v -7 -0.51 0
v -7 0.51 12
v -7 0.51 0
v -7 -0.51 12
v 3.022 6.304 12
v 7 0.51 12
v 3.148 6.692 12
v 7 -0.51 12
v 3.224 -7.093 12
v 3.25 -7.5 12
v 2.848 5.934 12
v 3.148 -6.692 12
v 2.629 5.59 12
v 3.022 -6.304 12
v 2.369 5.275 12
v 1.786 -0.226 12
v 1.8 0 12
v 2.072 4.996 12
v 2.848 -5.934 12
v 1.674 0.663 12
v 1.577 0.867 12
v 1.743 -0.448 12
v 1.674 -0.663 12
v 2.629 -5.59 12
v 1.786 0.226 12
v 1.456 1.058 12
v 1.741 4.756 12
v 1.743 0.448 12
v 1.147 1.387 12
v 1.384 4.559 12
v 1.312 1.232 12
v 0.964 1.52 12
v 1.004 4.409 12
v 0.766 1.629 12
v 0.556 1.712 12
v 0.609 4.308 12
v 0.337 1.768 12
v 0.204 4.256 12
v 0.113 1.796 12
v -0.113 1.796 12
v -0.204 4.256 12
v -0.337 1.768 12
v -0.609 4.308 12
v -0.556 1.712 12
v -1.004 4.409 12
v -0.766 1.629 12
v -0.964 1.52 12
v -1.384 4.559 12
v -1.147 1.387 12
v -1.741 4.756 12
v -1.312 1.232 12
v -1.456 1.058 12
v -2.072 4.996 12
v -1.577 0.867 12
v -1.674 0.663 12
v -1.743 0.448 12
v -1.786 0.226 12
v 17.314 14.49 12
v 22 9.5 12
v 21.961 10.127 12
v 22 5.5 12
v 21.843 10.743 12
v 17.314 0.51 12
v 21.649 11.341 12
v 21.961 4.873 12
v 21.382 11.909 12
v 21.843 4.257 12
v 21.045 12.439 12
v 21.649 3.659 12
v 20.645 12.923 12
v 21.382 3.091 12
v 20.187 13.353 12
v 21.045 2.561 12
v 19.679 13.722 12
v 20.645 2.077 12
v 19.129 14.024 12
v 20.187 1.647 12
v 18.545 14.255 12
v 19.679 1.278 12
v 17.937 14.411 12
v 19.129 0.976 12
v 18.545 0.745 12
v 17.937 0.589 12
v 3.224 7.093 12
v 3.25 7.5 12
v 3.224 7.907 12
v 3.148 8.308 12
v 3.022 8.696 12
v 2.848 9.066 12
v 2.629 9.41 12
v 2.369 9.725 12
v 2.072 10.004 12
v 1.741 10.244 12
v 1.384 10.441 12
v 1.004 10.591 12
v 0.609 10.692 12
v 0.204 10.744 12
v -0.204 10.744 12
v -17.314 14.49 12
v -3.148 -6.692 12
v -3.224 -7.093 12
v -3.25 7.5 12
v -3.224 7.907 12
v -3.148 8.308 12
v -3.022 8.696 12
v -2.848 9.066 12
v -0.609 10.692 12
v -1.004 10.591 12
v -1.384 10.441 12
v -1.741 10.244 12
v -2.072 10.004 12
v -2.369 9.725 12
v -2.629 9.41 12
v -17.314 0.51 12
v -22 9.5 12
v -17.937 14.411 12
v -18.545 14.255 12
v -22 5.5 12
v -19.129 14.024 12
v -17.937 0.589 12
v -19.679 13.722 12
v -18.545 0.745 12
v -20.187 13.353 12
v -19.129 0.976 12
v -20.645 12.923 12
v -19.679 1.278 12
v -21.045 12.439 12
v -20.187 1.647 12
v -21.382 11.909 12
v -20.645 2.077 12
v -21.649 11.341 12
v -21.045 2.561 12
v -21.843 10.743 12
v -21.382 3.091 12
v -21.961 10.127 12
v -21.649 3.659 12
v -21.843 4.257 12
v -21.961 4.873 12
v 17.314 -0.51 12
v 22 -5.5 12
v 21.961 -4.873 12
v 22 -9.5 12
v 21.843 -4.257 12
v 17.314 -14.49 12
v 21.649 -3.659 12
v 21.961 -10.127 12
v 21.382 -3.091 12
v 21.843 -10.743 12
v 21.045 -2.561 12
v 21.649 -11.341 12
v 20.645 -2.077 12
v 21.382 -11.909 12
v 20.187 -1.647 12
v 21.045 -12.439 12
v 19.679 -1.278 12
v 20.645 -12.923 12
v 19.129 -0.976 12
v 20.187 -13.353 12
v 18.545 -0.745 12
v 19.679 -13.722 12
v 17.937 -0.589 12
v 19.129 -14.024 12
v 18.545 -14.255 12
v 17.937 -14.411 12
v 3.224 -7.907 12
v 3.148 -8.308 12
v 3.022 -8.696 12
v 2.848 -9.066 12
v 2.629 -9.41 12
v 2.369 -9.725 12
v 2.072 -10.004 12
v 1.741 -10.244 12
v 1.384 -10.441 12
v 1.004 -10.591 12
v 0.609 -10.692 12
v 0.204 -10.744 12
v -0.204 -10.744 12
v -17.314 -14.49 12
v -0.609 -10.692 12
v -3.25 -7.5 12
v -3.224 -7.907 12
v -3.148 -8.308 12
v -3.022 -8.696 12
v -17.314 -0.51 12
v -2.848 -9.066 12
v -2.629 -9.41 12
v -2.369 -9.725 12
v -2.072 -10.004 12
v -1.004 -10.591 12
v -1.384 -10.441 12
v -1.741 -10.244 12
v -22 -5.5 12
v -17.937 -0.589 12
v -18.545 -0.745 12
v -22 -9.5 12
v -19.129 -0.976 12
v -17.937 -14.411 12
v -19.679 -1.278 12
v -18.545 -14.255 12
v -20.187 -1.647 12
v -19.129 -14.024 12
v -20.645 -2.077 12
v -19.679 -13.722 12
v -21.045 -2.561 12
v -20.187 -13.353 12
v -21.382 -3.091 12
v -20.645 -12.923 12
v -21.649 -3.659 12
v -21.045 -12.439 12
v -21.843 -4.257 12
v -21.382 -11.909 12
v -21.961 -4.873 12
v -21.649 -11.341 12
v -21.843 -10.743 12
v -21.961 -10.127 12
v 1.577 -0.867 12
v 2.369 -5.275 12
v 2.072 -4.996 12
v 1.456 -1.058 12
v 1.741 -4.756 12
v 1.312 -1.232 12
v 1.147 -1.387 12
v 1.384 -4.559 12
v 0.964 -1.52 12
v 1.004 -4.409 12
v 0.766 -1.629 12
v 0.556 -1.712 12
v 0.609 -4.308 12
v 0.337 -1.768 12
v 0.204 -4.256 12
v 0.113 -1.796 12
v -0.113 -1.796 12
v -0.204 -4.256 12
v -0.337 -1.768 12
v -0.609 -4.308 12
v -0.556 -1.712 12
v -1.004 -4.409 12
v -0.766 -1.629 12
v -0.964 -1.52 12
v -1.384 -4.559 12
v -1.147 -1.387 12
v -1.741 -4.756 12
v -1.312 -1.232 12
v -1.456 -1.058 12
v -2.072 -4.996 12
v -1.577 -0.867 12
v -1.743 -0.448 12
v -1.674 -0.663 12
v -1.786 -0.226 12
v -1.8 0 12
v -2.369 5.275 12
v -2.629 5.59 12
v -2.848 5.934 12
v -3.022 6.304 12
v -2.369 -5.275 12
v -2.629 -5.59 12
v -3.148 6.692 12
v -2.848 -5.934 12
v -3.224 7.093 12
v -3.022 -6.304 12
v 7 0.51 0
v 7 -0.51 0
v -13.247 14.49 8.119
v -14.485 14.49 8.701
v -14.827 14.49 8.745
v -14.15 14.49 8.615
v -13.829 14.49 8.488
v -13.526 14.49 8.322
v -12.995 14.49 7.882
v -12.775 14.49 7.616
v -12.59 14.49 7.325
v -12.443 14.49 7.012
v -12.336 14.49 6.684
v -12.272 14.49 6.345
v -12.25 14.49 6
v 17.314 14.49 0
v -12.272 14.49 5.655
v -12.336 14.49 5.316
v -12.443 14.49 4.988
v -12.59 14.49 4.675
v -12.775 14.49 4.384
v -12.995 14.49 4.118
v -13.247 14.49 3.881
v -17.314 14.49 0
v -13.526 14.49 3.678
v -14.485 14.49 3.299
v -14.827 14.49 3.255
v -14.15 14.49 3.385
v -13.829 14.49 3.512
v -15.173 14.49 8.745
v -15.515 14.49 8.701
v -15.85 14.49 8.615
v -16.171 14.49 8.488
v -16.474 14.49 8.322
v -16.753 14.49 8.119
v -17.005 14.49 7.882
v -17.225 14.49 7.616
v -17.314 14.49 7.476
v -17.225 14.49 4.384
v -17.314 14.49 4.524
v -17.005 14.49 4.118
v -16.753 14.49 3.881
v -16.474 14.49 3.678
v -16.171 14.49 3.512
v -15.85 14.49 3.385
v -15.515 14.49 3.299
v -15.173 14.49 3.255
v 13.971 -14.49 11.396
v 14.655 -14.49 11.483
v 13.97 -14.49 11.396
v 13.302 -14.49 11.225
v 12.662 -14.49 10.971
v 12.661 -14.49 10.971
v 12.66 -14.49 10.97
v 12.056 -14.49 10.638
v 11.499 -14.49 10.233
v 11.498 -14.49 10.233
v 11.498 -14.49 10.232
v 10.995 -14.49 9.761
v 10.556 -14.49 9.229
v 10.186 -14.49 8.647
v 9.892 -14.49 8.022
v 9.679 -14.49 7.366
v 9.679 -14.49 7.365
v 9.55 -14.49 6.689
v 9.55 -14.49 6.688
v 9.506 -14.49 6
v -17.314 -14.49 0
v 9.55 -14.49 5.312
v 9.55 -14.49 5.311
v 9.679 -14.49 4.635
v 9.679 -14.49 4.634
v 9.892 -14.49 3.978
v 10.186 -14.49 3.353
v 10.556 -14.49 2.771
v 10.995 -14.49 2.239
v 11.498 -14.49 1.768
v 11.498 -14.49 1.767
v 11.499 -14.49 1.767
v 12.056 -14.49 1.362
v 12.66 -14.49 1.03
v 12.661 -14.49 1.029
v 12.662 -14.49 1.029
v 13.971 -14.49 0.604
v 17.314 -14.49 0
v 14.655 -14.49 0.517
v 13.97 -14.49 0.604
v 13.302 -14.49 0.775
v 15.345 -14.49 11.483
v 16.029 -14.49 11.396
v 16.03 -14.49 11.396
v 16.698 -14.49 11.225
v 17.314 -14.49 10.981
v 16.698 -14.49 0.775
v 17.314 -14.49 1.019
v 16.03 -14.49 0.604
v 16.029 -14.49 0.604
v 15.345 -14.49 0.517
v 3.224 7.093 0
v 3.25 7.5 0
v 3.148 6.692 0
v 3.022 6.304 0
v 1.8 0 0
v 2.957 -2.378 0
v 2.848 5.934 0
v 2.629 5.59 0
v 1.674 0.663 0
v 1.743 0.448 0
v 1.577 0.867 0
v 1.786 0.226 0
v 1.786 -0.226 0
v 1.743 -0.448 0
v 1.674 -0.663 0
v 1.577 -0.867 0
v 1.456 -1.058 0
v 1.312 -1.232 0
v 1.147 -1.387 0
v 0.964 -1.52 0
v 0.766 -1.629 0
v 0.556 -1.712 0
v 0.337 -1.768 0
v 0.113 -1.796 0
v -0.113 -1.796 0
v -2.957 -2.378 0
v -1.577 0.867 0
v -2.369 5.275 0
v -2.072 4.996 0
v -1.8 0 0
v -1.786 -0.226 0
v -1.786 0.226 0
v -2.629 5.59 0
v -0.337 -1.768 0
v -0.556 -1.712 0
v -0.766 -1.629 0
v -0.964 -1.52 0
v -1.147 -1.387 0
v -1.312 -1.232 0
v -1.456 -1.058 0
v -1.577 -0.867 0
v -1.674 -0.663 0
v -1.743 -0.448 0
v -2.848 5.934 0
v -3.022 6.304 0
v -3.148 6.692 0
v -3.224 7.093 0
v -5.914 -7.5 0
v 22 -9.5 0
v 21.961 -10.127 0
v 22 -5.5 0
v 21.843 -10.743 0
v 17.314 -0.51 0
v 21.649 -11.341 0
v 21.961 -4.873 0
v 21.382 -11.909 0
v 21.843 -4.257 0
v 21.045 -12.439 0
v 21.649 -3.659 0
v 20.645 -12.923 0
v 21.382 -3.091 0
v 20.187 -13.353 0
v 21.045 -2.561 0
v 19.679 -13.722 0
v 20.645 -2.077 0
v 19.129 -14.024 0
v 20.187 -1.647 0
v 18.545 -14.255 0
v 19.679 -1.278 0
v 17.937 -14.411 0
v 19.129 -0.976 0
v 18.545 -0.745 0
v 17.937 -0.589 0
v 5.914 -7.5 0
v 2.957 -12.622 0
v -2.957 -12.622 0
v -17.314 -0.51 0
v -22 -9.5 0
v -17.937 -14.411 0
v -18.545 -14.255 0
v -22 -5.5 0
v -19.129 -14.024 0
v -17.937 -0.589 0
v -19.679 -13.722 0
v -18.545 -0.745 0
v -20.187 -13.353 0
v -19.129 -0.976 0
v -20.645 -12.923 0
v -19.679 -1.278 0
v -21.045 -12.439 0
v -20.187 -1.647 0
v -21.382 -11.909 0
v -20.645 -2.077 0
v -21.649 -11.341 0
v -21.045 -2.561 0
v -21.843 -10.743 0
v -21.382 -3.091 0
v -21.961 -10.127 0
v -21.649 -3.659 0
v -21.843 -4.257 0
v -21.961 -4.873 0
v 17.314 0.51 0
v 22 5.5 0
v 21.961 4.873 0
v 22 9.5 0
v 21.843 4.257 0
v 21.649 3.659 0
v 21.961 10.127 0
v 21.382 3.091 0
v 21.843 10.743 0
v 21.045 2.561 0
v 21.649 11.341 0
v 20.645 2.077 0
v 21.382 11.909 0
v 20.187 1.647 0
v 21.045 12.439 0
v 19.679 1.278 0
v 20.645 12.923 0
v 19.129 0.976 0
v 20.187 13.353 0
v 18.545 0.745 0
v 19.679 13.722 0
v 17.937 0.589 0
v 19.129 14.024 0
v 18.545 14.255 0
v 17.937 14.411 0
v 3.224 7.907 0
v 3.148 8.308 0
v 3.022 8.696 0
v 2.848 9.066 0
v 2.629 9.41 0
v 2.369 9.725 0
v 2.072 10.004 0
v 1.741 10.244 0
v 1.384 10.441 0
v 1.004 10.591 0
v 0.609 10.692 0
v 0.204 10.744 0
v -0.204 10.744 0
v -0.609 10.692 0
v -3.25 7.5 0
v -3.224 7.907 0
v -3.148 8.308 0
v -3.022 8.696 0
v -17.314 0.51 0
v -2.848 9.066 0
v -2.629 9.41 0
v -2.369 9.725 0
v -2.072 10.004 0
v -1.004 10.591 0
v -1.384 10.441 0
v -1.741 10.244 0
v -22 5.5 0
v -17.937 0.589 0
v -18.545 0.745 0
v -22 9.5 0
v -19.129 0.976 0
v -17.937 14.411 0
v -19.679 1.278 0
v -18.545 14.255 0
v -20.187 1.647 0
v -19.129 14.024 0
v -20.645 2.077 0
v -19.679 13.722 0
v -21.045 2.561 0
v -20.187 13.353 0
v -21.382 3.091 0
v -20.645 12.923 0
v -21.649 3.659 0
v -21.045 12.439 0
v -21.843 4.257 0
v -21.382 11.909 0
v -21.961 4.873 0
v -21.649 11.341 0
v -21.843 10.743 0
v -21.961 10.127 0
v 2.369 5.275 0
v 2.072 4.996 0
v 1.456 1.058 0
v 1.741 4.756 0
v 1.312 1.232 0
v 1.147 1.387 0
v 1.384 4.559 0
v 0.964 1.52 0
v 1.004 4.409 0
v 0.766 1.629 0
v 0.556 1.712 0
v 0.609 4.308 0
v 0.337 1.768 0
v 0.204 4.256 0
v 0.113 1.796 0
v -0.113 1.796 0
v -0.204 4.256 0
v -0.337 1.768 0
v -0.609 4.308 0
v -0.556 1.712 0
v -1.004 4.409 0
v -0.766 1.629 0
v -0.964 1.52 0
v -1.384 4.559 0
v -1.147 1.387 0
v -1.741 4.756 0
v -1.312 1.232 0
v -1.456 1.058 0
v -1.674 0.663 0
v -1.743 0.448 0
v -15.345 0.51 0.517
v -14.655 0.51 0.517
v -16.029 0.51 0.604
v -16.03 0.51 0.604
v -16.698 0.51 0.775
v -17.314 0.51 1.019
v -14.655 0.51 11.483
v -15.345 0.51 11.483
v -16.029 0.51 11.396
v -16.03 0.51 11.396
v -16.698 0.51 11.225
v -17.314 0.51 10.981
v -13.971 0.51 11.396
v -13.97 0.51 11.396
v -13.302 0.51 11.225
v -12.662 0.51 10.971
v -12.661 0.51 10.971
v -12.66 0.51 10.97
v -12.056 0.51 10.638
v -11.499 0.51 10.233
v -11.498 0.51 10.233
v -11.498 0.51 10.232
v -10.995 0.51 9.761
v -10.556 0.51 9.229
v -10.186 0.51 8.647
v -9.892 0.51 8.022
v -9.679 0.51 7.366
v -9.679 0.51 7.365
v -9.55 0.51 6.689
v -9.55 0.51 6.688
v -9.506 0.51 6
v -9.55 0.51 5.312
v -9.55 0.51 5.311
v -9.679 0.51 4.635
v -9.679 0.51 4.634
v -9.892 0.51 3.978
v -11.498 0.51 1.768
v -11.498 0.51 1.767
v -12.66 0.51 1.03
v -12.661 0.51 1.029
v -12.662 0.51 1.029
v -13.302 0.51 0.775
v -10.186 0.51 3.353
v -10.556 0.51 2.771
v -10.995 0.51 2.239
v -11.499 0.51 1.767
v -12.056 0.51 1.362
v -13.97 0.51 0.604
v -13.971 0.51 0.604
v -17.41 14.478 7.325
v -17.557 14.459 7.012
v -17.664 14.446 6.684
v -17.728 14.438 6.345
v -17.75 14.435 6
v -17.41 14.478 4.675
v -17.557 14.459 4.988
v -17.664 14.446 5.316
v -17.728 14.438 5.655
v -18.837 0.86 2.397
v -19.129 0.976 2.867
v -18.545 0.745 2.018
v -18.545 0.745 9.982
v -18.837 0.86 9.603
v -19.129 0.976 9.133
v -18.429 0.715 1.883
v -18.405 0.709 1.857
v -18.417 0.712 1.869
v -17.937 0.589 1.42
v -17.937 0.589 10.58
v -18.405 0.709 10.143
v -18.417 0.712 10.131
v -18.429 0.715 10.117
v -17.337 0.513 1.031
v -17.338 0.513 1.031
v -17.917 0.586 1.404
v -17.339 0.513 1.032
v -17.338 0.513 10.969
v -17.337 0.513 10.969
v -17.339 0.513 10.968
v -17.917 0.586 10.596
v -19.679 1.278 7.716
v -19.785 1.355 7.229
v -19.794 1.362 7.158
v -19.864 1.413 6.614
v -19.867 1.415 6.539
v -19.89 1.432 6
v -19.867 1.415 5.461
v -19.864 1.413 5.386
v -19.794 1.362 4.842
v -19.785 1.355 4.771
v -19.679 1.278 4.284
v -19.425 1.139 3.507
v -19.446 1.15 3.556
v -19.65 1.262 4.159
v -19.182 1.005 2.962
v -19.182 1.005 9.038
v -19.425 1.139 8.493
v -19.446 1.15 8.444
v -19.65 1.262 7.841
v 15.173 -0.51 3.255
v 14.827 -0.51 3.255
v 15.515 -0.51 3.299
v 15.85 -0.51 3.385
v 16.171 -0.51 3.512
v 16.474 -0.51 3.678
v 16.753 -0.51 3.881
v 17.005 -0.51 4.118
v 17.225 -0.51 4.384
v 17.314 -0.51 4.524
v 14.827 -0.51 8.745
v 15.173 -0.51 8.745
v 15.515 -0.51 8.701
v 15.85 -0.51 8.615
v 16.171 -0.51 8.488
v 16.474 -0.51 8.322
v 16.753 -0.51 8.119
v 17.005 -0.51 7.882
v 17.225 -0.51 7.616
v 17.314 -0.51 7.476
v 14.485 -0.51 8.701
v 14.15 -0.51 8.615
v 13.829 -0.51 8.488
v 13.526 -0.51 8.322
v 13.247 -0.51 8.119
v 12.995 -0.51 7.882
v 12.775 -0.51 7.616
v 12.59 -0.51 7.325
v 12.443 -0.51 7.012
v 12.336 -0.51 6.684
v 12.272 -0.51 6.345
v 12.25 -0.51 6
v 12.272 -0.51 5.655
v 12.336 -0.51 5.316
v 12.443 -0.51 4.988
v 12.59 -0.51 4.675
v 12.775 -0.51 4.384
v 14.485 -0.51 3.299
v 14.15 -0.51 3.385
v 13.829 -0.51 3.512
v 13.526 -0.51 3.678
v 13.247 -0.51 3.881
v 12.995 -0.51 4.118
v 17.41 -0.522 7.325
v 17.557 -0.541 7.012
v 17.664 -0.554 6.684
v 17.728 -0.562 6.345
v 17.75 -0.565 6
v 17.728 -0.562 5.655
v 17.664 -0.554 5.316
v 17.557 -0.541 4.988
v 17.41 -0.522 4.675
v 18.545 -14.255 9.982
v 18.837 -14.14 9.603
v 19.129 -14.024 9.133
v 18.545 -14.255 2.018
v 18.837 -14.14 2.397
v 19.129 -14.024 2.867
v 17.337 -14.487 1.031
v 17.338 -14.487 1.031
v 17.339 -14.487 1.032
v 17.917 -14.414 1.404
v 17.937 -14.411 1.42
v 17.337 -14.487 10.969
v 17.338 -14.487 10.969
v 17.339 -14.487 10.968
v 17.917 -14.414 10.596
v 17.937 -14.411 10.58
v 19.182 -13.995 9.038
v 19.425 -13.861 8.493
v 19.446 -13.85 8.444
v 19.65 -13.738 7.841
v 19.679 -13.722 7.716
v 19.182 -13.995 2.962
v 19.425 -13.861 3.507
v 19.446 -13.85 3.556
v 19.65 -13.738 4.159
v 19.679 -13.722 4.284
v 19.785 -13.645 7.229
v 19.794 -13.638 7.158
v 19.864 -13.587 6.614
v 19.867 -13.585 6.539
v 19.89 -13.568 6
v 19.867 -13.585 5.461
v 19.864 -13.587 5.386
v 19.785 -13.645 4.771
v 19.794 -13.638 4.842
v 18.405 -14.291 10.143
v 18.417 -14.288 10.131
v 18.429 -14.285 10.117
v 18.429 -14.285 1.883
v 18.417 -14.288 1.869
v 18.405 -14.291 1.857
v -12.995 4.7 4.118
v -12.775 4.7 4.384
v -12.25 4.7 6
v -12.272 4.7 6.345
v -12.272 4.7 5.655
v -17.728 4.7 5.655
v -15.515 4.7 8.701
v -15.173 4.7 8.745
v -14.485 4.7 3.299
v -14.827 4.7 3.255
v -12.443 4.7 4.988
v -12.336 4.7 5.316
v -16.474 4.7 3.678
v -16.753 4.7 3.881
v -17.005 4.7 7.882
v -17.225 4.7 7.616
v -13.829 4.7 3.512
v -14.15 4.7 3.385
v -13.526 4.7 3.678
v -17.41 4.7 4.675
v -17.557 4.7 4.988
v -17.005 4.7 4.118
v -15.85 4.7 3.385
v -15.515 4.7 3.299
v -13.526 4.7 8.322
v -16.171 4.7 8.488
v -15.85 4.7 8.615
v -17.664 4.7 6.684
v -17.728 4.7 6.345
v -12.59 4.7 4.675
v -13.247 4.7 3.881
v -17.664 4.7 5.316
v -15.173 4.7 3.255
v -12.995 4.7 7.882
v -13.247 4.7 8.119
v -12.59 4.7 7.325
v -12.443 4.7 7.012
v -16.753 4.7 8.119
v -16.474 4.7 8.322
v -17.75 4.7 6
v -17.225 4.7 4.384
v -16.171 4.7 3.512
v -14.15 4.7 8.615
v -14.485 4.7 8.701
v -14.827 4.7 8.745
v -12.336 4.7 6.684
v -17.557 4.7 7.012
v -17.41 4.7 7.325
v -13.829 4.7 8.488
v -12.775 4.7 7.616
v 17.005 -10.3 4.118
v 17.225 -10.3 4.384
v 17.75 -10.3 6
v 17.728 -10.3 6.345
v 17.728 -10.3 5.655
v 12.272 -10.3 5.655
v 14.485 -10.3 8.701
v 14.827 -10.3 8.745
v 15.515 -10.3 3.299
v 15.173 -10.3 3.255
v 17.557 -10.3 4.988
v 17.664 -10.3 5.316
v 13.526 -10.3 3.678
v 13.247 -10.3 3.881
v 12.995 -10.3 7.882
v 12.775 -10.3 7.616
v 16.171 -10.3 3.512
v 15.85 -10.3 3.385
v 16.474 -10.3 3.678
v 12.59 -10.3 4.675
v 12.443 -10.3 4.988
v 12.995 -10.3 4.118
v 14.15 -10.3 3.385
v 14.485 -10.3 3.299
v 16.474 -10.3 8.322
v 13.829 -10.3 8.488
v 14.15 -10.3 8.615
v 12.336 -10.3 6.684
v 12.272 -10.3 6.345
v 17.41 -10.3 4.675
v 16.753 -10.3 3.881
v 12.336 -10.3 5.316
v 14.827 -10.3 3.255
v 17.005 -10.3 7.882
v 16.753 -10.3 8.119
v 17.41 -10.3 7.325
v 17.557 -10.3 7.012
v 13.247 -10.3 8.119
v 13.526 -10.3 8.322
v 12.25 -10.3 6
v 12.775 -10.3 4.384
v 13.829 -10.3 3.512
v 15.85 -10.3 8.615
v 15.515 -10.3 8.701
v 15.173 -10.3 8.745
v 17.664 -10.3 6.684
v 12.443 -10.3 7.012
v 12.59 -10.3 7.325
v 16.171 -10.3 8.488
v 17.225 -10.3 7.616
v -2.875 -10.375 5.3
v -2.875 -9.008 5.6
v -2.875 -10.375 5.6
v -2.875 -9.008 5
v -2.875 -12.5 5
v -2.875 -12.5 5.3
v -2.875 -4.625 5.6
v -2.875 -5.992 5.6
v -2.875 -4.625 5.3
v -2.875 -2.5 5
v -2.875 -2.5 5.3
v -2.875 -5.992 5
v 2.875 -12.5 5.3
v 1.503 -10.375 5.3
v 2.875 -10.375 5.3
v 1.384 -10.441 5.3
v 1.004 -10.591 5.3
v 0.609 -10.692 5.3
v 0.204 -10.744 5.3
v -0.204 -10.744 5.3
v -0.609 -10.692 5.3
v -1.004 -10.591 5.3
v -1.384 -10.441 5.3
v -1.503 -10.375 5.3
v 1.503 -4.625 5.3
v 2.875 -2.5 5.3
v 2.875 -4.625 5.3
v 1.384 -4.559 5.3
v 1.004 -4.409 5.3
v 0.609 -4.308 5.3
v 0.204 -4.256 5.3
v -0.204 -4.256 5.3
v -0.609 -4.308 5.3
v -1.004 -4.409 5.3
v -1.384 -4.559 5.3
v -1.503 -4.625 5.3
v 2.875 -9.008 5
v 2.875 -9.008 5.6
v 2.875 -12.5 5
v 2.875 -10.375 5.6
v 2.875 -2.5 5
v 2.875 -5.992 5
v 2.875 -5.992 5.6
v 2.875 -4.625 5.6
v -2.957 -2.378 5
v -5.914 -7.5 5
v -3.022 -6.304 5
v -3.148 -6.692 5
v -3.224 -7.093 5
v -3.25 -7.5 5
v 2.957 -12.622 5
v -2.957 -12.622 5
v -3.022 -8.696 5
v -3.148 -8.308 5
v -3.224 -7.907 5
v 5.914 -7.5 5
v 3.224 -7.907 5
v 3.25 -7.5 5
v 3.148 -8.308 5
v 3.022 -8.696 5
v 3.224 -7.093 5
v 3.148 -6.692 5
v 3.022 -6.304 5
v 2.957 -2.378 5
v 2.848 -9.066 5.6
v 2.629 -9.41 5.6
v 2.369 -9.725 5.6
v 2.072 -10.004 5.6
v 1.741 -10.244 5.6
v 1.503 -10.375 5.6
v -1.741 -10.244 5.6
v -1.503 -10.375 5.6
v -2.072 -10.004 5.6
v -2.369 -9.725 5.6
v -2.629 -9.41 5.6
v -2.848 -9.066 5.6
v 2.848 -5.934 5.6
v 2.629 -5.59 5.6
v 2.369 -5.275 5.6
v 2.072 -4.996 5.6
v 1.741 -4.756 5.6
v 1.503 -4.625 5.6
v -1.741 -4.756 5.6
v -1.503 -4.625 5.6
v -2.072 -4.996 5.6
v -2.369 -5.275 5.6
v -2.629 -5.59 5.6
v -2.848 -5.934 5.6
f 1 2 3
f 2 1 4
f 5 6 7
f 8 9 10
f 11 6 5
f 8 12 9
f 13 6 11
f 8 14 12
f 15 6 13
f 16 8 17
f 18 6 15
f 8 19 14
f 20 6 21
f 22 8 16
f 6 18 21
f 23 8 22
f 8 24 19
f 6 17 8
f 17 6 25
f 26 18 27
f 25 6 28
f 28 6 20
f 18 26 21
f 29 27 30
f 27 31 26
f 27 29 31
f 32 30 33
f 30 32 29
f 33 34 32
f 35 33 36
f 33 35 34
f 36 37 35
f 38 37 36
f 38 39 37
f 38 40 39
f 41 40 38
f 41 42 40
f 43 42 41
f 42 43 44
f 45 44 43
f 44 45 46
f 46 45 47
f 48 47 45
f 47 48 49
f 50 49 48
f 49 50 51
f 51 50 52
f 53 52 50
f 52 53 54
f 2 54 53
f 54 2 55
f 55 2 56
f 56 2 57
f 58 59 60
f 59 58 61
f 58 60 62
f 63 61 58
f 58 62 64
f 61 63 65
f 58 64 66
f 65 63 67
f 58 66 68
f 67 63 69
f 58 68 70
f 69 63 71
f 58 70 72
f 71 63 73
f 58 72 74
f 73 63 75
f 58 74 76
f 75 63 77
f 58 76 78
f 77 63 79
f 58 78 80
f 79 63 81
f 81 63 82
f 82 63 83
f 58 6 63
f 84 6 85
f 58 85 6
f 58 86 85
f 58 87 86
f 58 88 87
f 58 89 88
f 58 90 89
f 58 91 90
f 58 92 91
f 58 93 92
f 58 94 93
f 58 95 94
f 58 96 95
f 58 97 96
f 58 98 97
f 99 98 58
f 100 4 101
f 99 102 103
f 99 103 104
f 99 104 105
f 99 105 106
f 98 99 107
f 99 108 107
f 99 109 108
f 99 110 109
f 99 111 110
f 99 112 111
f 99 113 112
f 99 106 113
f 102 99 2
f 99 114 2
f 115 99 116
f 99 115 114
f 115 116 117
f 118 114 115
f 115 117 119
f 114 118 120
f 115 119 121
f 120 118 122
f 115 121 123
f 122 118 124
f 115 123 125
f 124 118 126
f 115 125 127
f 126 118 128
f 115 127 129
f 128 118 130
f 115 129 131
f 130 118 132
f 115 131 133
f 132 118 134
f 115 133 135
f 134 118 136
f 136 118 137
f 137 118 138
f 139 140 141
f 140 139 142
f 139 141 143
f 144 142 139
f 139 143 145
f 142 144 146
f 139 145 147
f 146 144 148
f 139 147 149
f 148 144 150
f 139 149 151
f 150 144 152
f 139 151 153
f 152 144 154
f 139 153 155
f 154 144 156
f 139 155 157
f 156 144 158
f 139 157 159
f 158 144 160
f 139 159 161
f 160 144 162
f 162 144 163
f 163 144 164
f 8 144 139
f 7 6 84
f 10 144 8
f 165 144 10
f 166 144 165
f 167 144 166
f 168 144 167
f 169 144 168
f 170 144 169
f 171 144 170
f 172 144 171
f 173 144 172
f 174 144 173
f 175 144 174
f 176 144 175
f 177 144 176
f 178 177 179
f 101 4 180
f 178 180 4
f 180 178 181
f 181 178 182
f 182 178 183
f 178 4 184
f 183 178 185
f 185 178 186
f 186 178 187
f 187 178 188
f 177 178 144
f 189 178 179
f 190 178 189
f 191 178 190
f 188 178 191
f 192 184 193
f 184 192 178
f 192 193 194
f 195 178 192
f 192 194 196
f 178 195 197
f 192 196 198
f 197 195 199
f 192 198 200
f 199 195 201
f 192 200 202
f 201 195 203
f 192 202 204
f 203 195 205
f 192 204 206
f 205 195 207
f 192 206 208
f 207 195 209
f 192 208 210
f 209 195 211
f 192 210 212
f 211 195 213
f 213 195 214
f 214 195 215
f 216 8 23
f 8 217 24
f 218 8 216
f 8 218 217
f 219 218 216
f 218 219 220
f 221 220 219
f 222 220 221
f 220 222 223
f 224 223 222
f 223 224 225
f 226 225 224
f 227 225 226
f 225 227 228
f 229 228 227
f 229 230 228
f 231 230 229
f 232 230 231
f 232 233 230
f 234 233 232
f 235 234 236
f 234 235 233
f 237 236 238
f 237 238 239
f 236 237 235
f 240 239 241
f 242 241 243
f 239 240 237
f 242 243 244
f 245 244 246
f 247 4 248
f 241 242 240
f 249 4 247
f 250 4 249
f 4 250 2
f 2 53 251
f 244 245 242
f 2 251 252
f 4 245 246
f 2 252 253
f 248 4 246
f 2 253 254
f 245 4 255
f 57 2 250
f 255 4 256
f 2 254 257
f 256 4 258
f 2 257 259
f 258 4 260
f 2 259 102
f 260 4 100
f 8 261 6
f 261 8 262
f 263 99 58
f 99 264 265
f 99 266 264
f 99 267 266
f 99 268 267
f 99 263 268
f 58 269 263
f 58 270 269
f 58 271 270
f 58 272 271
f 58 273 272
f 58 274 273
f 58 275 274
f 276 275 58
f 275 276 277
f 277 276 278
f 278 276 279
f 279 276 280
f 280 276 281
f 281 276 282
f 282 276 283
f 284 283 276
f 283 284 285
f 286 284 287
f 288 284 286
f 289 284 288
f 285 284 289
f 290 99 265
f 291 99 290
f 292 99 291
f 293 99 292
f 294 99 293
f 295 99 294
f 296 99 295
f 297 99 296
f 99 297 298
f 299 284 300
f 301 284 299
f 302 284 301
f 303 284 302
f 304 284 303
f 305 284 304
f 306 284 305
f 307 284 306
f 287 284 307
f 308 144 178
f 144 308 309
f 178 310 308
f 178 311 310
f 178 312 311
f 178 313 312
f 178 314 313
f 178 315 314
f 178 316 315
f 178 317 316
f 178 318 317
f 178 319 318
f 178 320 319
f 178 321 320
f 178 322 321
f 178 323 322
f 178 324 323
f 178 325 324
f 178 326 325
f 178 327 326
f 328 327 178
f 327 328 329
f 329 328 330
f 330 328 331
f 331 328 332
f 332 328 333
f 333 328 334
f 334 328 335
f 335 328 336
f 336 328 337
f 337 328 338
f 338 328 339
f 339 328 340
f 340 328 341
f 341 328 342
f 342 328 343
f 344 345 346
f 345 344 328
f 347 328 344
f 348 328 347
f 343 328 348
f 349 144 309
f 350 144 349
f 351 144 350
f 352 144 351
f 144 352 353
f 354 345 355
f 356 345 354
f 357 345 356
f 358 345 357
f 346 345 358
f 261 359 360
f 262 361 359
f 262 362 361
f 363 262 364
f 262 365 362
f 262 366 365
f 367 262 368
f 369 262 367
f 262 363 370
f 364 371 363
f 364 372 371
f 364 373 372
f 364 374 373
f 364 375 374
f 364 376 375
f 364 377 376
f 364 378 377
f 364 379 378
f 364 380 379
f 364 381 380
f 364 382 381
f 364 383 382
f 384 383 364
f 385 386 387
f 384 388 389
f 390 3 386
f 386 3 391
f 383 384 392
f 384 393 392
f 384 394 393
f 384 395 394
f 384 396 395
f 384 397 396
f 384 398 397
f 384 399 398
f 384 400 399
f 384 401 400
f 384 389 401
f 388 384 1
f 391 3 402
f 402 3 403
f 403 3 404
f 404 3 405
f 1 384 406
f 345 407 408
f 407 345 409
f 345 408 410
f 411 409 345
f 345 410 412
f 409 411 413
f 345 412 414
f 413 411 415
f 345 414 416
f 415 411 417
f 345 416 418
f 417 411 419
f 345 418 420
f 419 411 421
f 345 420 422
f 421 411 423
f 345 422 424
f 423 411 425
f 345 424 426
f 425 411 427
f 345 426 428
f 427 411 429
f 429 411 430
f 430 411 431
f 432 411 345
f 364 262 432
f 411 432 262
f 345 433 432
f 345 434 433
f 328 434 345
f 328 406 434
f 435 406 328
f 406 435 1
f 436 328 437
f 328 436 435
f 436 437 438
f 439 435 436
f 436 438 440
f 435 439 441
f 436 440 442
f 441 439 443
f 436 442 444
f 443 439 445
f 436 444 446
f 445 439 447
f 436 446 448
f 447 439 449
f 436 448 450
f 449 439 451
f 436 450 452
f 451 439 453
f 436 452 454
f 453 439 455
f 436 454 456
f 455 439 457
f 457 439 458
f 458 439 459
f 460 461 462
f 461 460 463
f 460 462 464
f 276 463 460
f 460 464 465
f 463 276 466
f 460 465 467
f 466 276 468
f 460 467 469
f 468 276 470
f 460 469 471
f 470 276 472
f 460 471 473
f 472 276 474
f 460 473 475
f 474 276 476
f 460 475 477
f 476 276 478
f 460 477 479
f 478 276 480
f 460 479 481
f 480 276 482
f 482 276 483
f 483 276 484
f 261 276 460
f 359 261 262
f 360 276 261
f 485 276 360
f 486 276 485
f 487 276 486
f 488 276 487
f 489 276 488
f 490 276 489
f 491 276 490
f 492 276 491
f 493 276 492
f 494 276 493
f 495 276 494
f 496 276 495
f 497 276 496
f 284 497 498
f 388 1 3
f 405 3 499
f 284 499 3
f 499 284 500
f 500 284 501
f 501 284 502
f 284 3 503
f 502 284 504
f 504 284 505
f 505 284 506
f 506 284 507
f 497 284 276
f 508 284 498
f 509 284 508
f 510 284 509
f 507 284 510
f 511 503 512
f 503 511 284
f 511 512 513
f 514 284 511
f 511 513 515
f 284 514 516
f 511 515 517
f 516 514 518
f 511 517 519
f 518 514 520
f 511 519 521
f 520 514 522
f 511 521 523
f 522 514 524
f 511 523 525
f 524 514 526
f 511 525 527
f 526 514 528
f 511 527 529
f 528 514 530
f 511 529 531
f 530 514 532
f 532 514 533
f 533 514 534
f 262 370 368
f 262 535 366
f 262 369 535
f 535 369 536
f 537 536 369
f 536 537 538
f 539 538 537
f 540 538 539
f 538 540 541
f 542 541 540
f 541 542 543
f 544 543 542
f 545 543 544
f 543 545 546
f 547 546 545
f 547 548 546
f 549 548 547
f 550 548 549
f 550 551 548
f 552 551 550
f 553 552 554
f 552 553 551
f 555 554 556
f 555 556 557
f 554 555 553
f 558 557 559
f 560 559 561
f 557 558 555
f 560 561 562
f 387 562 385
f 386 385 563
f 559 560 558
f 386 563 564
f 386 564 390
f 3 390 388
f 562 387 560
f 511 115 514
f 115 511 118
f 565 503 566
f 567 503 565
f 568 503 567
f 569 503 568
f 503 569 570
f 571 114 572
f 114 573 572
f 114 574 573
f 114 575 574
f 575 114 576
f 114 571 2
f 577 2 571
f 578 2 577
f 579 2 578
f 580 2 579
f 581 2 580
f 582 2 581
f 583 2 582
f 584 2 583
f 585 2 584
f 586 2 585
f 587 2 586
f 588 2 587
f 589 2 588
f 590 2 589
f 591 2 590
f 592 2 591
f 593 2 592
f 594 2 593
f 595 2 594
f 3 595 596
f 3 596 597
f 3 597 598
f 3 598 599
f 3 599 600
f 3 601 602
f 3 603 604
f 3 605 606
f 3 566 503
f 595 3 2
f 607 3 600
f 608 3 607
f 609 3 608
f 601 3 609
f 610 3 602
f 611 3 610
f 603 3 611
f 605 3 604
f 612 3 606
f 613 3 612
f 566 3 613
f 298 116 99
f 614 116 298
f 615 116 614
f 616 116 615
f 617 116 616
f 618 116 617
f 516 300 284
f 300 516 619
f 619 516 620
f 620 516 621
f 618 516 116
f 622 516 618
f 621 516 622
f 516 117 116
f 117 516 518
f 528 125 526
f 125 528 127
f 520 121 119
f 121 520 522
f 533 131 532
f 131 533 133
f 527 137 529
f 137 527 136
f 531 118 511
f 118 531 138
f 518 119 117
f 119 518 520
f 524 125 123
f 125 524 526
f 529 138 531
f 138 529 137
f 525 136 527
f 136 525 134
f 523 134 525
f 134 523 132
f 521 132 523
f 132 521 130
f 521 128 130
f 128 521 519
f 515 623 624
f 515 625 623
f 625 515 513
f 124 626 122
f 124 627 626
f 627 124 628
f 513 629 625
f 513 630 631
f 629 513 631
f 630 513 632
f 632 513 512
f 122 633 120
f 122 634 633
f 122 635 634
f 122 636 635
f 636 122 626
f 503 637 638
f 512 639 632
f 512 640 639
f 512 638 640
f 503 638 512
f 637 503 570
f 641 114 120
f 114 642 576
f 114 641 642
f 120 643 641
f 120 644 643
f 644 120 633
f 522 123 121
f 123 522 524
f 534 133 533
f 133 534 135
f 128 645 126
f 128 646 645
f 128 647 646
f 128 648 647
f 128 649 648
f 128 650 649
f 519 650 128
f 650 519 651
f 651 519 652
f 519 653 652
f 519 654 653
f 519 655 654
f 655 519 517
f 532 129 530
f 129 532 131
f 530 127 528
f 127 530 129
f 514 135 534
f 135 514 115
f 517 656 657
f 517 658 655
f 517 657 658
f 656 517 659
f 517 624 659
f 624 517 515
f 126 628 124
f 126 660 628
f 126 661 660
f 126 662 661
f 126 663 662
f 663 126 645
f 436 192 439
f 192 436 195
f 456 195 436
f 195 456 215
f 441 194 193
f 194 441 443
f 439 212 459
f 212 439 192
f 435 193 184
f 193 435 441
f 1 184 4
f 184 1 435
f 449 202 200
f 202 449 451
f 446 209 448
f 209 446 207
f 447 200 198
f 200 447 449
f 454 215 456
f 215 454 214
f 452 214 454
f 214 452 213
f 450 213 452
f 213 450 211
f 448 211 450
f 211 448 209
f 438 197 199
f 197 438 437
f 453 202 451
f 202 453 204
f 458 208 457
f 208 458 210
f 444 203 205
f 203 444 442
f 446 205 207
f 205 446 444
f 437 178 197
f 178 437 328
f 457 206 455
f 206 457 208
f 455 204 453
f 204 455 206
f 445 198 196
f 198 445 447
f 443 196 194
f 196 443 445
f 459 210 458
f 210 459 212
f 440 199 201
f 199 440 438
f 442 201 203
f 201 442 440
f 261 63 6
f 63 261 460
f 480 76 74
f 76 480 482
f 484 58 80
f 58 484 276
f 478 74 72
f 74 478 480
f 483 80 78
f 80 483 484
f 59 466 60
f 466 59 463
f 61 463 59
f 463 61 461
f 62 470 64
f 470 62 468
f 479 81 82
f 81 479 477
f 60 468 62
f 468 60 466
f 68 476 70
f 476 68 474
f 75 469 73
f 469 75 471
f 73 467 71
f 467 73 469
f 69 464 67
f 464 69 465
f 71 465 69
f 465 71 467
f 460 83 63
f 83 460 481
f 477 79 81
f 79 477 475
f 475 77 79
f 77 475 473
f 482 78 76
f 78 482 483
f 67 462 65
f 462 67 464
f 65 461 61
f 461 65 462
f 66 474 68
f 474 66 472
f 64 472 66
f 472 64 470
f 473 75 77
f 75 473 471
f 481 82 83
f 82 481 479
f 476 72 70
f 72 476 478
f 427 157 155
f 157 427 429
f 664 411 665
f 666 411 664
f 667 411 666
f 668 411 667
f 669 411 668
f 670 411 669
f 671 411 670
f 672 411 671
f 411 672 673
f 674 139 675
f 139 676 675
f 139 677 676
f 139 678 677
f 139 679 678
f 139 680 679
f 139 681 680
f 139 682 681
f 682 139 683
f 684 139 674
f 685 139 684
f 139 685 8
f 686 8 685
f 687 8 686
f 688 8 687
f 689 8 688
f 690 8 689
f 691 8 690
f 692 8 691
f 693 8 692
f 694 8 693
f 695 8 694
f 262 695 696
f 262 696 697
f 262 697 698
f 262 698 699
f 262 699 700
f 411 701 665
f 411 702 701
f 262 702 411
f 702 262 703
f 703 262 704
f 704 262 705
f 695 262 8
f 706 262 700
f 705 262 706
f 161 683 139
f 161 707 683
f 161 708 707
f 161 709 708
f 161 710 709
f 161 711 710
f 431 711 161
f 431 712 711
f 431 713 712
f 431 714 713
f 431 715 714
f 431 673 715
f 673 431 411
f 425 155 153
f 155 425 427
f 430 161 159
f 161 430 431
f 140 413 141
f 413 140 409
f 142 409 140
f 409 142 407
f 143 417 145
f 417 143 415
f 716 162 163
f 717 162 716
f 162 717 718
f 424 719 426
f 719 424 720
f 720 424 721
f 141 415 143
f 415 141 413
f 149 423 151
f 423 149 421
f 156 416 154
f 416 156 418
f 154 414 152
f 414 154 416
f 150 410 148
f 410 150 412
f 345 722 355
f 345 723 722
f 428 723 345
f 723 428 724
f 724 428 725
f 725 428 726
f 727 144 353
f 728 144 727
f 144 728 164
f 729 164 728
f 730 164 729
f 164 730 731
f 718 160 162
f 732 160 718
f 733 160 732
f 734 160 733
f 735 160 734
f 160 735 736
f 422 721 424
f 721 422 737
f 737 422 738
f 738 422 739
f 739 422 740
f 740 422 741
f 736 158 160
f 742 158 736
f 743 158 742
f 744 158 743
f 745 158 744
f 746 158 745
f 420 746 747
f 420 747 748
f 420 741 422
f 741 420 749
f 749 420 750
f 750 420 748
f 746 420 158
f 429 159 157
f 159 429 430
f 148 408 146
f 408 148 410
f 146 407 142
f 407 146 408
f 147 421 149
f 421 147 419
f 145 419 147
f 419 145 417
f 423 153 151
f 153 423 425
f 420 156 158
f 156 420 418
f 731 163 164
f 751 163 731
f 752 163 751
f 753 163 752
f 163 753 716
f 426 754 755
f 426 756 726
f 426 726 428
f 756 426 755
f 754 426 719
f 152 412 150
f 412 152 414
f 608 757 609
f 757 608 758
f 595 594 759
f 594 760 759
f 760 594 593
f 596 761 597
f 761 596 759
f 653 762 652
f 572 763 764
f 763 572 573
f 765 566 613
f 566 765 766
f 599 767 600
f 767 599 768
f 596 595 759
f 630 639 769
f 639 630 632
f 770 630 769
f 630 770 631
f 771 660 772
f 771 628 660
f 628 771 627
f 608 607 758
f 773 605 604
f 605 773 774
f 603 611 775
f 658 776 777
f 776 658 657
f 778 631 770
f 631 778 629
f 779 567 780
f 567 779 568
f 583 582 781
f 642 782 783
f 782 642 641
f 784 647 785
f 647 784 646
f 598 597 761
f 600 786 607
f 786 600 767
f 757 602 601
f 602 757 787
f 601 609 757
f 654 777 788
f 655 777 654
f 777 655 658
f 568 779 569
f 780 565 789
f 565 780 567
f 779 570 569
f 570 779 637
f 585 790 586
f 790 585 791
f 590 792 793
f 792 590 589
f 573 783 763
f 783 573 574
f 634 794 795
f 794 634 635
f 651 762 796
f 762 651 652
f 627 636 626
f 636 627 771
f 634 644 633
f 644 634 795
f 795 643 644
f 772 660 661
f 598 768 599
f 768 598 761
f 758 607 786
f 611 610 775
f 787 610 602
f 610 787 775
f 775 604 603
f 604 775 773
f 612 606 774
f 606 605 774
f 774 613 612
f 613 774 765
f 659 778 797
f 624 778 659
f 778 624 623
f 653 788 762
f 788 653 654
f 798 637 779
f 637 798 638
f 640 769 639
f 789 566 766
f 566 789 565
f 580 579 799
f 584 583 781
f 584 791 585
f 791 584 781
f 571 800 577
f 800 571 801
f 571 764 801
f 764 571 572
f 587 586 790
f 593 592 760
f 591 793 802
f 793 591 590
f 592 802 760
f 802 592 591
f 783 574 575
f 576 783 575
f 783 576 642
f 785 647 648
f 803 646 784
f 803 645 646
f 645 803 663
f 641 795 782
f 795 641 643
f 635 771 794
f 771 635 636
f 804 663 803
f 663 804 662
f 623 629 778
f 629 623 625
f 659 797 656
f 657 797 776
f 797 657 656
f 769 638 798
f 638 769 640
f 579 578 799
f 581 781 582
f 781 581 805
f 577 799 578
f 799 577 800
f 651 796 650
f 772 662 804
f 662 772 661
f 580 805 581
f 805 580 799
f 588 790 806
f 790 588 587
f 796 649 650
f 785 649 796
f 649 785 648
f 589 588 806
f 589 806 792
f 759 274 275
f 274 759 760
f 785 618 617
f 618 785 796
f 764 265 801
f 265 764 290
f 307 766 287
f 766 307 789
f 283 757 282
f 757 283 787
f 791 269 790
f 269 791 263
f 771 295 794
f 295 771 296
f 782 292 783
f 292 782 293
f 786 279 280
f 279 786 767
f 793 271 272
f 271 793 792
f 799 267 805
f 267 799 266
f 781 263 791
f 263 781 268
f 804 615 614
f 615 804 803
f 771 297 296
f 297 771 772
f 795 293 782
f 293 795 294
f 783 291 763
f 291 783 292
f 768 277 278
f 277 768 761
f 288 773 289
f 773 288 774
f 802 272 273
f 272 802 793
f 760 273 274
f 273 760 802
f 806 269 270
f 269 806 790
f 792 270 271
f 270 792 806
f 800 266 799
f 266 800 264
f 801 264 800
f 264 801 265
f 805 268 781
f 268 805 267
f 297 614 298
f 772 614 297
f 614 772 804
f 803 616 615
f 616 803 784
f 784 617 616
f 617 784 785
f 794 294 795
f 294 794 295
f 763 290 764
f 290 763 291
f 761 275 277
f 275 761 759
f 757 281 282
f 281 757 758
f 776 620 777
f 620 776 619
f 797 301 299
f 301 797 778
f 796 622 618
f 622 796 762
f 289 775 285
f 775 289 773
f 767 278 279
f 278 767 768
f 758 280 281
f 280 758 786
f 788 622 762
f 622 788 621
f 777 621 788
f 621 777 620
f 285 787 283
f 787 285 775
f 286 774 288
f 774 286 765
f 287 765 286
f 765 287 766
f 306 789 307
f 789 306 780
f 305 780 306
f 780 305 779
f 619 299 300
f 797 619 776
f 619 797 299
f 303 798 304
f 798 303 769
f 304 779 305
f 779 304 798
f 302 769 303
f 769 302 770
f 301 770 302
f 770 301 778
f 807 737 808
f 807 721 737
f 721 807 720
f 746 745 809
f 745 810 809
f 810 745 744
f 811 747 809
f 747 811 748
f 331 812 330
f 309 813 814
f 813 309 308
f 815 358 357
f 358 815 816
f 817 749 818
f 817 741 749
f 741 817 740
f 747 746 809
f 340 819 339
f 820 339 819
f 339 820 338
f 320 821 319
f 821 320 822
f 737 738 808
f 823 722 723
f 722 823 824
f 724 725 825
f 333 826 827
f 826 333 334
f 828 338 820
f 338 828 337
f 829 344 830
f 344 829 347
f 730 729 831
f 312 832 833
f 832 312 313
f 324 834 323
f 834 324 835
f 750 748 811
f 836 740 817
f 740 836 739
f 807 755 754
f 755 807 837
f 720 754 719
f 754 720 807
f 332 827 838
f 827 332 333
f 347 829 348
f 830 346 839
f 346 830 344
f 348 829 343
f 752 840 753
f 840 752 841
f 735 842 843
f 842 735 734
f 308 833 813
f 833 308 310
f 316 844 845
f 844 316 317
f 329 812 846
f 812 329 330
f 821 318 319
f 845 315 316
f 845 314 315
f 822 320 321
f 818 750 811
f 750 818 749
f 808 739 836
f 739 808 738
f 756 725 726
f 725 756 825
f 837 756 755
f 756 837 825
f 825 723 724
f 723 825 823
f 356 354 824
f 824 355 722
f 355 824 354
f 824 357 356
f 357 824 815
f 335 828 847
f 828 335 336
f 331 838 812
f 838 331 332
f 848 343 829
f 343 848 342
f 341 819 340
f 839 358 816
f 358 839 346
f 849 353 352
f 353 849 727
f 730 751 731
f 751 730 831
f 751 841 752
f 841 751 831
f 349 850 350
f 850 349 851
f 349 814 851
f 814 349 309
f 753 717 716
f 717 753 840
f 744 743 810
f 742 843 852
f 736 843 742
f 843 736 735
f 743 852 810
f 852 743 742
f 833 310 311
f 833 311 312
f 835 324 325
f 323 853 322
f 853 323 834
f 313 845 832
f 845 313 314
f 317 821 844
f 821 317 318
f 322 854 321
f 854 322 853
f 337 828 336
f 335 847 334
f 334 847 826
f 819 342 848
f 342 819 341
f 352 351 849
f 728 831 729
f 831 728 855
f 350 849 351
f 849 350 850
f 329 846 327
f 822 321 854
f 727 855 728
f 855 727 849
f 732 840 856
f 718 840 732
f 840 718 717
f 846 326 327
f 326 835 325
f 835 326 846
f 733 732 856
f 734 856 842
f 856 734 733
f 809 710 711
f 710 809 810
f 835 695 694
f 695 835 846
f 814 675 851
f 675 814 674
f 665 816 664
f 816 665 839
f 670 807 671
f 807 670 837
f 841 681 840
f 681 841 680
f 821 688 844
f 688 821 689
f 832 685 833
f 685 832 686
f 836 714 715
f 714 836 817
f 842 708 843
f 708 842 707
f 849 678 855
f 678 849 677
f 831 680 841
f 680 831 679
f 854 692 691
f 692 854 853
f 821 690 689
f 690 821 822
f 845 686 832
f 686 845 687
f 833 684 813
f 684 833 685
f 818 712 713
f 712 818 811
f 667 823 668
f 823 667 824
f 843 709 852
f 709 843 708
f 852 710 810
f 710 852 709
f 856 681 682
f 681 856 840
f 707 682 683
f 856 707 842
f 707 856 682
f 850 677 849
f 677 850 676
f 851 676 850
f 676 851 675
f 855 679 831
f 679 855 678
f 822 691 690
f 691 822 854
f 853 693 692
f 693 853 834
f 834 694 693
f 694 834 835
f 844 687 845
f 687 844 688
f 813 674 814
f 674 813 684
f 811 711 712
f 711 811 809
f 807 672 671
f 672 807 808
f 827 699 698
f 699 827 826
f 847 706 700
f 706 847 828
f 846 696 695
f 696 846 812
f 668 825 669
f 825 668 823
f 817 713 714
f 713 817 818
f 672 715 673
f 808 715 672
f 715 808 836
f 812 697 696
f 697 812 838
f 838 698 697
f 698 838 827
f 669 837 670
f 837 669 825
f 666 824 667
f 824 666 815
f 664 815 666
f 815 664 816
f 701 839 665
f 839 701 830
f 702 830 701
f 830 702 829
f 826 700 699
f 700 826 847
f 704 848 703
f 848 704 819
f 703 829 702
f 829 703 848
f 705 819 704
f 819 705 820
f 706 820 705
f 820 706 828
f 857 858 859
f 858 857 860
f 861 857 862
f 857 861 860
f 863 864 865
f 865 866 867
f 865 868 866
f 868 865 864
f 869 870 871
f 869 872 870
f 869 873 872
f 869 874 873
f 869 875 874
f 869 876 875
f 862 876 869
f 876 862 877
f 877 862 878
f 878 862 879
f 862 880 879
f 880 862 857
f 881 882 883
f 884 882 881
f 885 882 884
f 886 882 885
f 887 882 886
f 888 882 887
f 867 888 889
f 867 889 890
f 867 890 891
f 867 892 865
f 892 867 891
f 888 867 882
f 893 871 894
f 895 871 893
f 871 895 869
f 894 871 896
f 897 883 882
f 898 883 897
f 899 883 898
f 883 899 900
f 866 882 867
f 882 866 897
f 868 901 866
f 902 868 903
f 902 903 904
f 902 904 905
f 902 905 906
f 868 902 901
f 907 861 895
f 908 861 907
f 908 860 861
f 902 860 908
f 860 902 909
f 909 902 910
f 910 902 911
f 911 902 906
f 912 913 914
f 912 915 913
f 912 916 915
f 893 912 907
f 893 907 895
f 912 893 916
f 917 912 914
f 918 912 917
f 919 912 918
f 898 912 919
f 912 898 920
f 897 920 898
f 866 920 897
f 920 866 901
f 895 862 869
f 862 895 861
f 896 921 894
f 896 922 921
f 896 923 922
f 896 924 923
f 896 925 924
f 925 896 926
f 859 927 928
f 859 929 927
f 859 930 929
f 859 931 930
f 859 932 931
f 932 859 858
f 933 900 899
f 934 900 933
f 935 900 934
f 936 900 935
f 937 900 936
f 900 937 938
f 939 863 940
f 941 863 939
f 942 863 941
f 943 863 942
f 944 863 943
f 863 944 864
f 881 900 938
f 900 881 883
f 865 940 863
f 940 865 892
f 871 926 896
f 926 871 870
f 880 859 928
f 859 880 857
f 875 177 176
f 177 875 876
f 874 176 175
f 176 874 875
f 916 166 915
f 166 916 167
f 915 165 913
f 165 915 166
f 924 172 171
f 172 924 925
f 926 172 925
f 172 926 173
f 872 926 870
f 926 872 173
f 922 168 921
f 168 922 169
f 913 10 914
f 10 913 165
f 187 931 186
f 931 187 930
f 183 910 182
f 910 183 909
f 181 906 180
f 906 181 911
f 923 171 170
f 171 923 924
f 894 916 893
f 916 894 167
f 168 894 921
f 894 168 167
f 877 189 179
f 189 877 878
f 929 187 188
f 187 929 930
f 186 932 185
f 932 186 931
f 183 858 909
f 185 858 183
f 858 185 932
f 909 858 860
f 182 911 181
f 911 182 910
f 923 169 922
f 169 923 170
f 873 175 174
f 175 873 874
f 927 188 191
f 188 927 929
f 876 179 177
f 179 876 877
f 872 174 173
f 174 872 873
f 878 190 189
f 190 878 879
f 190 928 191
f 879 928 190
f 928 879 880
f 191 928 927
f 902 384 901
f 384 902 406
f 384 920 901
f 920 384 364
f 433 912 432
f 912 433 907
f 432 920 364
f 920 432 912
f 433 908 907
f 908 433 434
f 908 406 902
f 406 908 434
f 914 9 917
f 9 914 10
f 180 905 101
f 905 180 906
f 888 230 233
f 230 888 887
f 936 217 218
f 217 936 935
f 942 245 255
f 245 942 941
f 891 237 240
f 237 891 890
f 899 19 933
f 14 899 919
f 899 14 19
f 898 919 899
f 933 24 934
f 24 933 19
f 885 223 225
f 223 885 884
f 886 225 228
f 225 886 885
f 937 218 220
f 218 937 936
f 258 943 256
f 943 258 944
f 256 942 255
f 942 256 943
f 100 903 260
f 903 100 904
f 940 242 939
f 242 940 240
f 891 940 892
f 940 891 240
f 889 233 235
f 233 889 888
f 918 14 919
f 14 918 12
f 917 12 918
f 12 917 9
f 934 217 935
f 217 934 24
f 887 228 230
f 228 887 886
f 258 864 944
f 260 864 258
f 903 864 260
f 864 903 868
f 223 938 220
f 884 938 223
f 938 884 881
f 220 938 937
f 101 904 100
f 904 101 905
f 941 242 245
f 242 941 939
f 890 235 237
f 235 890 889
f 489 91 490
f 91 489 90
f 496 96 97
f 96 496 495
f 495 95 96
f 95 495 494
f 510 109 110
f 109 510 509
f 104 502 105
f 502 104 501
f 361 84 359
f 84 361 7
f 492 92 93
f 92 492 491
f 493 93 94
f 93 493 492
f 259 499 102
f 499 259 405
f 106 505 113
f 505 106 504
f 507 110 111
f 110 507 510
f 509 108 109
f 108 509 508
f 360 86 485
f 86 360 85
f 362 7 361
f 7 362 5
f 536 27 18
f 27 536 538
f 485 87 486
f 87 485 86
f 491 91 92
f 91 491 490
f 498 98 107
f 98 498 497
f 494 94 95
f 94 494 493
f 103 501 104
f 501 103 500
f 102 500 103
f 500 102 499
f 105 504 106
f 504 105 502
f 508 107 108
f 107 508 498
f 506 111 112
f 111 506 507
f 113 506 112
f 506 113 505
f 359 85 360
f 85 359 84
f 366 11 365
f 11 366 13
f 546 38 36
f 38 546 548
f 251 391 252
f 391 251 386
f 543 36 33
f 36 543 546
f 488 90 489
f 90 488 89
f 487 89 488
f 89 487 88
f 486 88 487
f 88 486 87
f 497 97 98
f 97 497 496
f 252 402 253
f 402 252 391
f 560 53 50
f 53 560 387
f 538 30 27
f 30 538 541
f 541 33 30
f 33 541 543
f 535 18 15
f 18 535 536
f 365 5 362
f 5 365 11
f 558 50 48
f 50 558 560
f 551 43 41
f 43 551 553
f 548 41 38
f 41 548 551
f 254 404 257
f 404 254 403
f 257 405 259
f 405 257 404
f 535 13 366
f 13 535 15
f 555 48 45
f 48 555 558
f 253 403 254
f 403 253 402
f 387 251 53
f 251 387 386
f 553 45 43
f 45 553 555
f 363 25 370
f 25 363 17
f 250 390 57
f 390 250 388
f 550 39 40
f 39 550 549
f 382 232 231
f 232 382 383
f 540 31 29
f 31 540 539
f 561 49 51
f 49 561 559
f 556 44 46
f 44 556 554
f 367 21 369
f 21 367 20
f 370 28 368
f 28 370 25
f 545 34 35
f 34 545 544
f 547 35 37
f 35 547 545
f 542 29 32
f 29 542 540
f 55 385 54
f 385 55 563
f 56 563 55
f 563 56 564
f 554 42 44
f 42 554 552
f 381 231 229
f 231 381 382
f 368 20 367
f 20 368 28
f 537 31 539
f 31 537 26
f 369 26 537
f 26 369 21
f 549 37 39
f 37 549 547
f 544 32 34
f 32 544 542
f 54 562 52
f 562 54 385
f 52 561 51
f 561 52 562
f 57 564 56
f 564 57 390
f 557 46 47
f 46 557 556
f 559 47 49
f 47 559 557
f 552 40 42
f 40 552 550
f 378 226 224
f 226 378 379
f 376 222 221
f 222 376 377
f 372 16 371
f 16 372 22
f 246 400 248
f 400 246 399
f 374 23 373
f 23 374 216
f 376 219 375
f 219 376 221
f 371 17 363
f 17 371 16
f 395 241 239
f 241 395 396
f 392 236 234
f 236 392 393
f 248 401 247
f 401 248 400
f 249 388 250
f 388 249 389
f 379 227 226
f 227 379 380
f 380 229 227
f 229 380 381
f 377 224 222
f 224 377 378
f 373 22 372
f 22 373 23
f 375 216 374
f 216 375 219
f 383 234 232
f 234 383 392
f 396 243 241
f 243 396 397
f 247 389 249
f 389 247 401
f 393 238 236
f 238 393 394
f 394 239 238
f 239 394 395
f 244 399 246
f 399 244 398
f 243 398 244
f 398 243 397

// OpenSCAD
$fn = 50;


difference() {
	union() {
		hull() {
			translate(v = [-2.0000000000, 9.5000000000, 0]) {
				cylinder(h = 12, r = 5);
			}
			translate(v = [2.0000000000, 9.5000000000, 0]) {
				cylinder(h = 12, r = 5);
			}
			translate(v = [-2.0000000000, -9.5000000000, 0]) {
				cylinder(h = 12, r = 5);
			}
			translate(v = [2.0000000000, -9.5000000000, 0]) {
				cylinder(h = 12, r = 5);
			}
		}
		translate(v = [-7.5000000000, 7.5000000000, 0]) {
			hull() {
				translate(v = [-9.5000000000, 2.0000000000, 0]) {
					cylinder(h = 12, r = 5);
				}
				translate(v = [9.5000000000, 2.0000000000, 0]) {
					cylinder(h = 12, r = 5);
				}
				translate(v = [-9.5000000000, -2.0000000000, 0]) {
					cylinder(h = 12, r = 5);
				}
				translate(v = [9.5000000000, -2.0000000000, 0]) {
					cylinder(h = 12, r = 5);
				}
			}
		}
		translate(v = [-7.5000000000, -7.5000000000, 0]) {
			hull() {
				translate(v = [-9.5000000000, 2.0000000000, 0]) {
					cylinder(h = 12, r = 5);
				}
				translate(v = [9.5000000000, 2.0000000000, 0]) {
					cylinder(h = 12, r = 5);
				}
				translate(v = [-9.5000000000, -2.0000000000, 0]) {
					cylinder(h = 12, r = 5);
				}
				translate(v = [9.5000000000, -2.0000000000, 0]) {
					cylinder(h = 12, r = 5);
				}
			}
		}
		translate(v = [7.5000000000, 7.5000000000, 0]) {
			hull() {
				translate(v = [-9.5000000000, 2.0000000000, 0]) {
					cylinder(h = 12, r = 5);
				}
				translate(v = [9.5000000000, 2.0000000000, 0]) {
					cylinder(h = 12, r = 5);
				}
				translate(v = [-9.5000000000, -2.0000000000, 0]) {
					cylinder(h = 12, r = 5);
				}
				translate(v = [9.5000000000, -2.0000000000, 0]) {
					cylinder(h = 12, r = 5);
				}
			}
		}
		translate(v = [7.5000000000, -7.5000000000, 0]) {
			hull() {
				translate(v = [-9.5000000000, 2.0000000000, 0]) {
					cylinder(h = 12, r = 5);
				}
				translate(v = [9.5000000000, 2.0000000000, 0]) {
					cylinder(h = 12, r = 5);
				}
				translate(v = [-9.5000000000, -2.0000000000, 0]) {
					cylinder(h = 12, r = 5);
				}
				translate(v = [9.5000000000, -2.0000000000, 0]) {
					cylinder(h = 12, r = 5);
				}
			}
		}
	}
	union() {
		translate(v = [-15.0000000000, 0.5000000000, 6.0000000000]) {
			rotate(a = [90, 0, 0]) {
				difference() {
					union() {
						#translate(v = [0, 0, -14.0000000000]) {
							cylinder(h = 14, r = 2.2500000000);
						}
						#translate(v = [0, 0, -4.2000000000]) {
							cylinder(h = 4.2000000000, r1 = 2.7500000000, r2 = 5.5000000000);
						}
						#translate(v = [0, 0, -14.0000000000]) {
							cylinder(h = 14, r = 2.7500000000);
						}
						#translate(v = [0, 0, -14.0000000000]) {
							cylinder(h = 14, r = 2.2500000000);
						}
					}
					union();
				}
			}
		}
		translate(v = [15.0000000000, -14.5000000000, 6.0000000000]) {
			rotate(a = [90, 0, 0]) {
				difference() {
					union() {
						#translate(v = [0, 0, -14.0000000000]) {
							cylinder(h = 14, r = 2.2500000000);
						}
						#translate(v = [0, 0, -4.2000000000]) {
							cylinder(h = 4.2000000000, r1 = 2.7500000000, r2 = 5.5000000000);
						}
						#translate(v = [0, 0, -14.0000000000]) {
							cylinder(h = 14, r = 2.7500000000);
						}
						#translate(v = [0, 0, -14.0000000000]) {
							cylinder(h = 14, r = 2.2500000000);
						}
					}
					union();
				}
			}
		}
		translate(v = [0.0000000000, -7.5000000000, 0]) {
			rotate(a = [0, 0, 0]) {
				difference() {
					union() {
						#translate(v = [-2.8750000000, -5.0000000000, -0.3000000000]) {
							cube(size = [5.7500000000, 10, 0.3000000000]);
						}
						#translate(v = [-2.8750000000, -2.8750000000, -0.6000000000]) {
							cube(size = [5.7500000000, 5.7500000000, 0.3000000000]);
						}
						#translate(v = [-2.8750000000, -5.0000000000, 5]) {
							cube(size = [5.7500000000, 10, 0.3000000000]);
						}
						#translate(v = [-2.8750000000, -2.8750000000, 5.3000000000]) {
							cube(size = [5.7500000000, 5.7500000000, 0.3000000000]);
						}
						#translate(v = [0, 0, -100.0000000000]) {
							cylinder(h = 200, r = 3.2500000000);
						}
						#linear_extrude(height = 5) {
							polygon(points = [[5.9142500000, 0.0000000000], [2.9571250000, 5.1218907443], [-2.9571250000, 5.1218907443], [-5.9142500000, 0.0000000000], [-2.9571250000, -5.1218907443], [2.9571250000, -5.1218907443]]);
						}
						#translate(v = [-2.8750000000, -5.0000000000, -0.3000000000]) {
							cube(size = [5.7500000000, 10, 0.3000000000]);
						}
						#translate(v = [-2.8750000000, -2.8750000000, -0.6000000000]) {
							cube(size = [5.7500000000, 5.7500000000, 0.3000000000]);
						}
						#translate(v = [-2.8750000000, -5.0000000000, 5]) {
							cube(size = [5.7500000000, 10, 0.3000000000]);
						}
						#translate(v = [-2.8750000000, -2.8750000000, 5.3000000000]) {
							cube(size = [5.7500000000, 5.7500000000, 0.3000000000]);
						}
						#translate(v = [0, 0, -100.0000000000]) {
							cylinder(h = 200, r = 3.2500000000);
						}
						#translate(v = [-2.8750000000, -5.0000000000, -0.3000000000]) {
							cube(size = [5.7500000000, 10, 0.3000000000]);
						}
						#translate(v = [-2.8750000000, -2.8750000000, -0.6000000000]) {
							cube(size = [5.7500000000, 5.7500000000, 0.3000000000]);
						}
						#translate(v = [-2.8750000000, -5.0000000000, 5]) {
							cube(size = [5.7500000000, 10, 0.3000000000]);
						}
						#translate(v = [-2.8750000000, -2.8750000000, 5.3000000000]) {
							cube(size = [5.7500000000, 5.7500000000, 0.3000000000]);
						}
						#translate(v = [0, 0, -100.0000000000]) {
							cylinder(h = 200, r = 3.2500000000);
						}
					}
					union();
				}
			}
		}
		translate(v = [0.0000000000, -7.5000000000, 0]) {
			translate(v = [0, 0, -100]) {
				cylinder(h = 200, r = 3.2500000000);
			}
		}
		translate(v = [0.0000000000, 7.5000000000, 0]) {
			translate(v = [0, 0, -100]) {
				cylinder(h = 200, r = 3.2500000000);
			}
		}
		translate(v = [0.0000000000, -7.5000000000, 0]) {
			translate(v = [0, 0, -100]) {
				cylinder(h = 200, r = 1.8000000000);
			}
		}
		translate(v = [0, 0, -100]) {
			cylinder(h = 200, r = 1.8000000000);
		}
		translate(v = [0.0000000000, 7.5000000000, 0]) {
			translate(v = [0, 0, -100]) {
				cylinder(h = 200, r = 1.8000000000);
			}
		}
	}
}
